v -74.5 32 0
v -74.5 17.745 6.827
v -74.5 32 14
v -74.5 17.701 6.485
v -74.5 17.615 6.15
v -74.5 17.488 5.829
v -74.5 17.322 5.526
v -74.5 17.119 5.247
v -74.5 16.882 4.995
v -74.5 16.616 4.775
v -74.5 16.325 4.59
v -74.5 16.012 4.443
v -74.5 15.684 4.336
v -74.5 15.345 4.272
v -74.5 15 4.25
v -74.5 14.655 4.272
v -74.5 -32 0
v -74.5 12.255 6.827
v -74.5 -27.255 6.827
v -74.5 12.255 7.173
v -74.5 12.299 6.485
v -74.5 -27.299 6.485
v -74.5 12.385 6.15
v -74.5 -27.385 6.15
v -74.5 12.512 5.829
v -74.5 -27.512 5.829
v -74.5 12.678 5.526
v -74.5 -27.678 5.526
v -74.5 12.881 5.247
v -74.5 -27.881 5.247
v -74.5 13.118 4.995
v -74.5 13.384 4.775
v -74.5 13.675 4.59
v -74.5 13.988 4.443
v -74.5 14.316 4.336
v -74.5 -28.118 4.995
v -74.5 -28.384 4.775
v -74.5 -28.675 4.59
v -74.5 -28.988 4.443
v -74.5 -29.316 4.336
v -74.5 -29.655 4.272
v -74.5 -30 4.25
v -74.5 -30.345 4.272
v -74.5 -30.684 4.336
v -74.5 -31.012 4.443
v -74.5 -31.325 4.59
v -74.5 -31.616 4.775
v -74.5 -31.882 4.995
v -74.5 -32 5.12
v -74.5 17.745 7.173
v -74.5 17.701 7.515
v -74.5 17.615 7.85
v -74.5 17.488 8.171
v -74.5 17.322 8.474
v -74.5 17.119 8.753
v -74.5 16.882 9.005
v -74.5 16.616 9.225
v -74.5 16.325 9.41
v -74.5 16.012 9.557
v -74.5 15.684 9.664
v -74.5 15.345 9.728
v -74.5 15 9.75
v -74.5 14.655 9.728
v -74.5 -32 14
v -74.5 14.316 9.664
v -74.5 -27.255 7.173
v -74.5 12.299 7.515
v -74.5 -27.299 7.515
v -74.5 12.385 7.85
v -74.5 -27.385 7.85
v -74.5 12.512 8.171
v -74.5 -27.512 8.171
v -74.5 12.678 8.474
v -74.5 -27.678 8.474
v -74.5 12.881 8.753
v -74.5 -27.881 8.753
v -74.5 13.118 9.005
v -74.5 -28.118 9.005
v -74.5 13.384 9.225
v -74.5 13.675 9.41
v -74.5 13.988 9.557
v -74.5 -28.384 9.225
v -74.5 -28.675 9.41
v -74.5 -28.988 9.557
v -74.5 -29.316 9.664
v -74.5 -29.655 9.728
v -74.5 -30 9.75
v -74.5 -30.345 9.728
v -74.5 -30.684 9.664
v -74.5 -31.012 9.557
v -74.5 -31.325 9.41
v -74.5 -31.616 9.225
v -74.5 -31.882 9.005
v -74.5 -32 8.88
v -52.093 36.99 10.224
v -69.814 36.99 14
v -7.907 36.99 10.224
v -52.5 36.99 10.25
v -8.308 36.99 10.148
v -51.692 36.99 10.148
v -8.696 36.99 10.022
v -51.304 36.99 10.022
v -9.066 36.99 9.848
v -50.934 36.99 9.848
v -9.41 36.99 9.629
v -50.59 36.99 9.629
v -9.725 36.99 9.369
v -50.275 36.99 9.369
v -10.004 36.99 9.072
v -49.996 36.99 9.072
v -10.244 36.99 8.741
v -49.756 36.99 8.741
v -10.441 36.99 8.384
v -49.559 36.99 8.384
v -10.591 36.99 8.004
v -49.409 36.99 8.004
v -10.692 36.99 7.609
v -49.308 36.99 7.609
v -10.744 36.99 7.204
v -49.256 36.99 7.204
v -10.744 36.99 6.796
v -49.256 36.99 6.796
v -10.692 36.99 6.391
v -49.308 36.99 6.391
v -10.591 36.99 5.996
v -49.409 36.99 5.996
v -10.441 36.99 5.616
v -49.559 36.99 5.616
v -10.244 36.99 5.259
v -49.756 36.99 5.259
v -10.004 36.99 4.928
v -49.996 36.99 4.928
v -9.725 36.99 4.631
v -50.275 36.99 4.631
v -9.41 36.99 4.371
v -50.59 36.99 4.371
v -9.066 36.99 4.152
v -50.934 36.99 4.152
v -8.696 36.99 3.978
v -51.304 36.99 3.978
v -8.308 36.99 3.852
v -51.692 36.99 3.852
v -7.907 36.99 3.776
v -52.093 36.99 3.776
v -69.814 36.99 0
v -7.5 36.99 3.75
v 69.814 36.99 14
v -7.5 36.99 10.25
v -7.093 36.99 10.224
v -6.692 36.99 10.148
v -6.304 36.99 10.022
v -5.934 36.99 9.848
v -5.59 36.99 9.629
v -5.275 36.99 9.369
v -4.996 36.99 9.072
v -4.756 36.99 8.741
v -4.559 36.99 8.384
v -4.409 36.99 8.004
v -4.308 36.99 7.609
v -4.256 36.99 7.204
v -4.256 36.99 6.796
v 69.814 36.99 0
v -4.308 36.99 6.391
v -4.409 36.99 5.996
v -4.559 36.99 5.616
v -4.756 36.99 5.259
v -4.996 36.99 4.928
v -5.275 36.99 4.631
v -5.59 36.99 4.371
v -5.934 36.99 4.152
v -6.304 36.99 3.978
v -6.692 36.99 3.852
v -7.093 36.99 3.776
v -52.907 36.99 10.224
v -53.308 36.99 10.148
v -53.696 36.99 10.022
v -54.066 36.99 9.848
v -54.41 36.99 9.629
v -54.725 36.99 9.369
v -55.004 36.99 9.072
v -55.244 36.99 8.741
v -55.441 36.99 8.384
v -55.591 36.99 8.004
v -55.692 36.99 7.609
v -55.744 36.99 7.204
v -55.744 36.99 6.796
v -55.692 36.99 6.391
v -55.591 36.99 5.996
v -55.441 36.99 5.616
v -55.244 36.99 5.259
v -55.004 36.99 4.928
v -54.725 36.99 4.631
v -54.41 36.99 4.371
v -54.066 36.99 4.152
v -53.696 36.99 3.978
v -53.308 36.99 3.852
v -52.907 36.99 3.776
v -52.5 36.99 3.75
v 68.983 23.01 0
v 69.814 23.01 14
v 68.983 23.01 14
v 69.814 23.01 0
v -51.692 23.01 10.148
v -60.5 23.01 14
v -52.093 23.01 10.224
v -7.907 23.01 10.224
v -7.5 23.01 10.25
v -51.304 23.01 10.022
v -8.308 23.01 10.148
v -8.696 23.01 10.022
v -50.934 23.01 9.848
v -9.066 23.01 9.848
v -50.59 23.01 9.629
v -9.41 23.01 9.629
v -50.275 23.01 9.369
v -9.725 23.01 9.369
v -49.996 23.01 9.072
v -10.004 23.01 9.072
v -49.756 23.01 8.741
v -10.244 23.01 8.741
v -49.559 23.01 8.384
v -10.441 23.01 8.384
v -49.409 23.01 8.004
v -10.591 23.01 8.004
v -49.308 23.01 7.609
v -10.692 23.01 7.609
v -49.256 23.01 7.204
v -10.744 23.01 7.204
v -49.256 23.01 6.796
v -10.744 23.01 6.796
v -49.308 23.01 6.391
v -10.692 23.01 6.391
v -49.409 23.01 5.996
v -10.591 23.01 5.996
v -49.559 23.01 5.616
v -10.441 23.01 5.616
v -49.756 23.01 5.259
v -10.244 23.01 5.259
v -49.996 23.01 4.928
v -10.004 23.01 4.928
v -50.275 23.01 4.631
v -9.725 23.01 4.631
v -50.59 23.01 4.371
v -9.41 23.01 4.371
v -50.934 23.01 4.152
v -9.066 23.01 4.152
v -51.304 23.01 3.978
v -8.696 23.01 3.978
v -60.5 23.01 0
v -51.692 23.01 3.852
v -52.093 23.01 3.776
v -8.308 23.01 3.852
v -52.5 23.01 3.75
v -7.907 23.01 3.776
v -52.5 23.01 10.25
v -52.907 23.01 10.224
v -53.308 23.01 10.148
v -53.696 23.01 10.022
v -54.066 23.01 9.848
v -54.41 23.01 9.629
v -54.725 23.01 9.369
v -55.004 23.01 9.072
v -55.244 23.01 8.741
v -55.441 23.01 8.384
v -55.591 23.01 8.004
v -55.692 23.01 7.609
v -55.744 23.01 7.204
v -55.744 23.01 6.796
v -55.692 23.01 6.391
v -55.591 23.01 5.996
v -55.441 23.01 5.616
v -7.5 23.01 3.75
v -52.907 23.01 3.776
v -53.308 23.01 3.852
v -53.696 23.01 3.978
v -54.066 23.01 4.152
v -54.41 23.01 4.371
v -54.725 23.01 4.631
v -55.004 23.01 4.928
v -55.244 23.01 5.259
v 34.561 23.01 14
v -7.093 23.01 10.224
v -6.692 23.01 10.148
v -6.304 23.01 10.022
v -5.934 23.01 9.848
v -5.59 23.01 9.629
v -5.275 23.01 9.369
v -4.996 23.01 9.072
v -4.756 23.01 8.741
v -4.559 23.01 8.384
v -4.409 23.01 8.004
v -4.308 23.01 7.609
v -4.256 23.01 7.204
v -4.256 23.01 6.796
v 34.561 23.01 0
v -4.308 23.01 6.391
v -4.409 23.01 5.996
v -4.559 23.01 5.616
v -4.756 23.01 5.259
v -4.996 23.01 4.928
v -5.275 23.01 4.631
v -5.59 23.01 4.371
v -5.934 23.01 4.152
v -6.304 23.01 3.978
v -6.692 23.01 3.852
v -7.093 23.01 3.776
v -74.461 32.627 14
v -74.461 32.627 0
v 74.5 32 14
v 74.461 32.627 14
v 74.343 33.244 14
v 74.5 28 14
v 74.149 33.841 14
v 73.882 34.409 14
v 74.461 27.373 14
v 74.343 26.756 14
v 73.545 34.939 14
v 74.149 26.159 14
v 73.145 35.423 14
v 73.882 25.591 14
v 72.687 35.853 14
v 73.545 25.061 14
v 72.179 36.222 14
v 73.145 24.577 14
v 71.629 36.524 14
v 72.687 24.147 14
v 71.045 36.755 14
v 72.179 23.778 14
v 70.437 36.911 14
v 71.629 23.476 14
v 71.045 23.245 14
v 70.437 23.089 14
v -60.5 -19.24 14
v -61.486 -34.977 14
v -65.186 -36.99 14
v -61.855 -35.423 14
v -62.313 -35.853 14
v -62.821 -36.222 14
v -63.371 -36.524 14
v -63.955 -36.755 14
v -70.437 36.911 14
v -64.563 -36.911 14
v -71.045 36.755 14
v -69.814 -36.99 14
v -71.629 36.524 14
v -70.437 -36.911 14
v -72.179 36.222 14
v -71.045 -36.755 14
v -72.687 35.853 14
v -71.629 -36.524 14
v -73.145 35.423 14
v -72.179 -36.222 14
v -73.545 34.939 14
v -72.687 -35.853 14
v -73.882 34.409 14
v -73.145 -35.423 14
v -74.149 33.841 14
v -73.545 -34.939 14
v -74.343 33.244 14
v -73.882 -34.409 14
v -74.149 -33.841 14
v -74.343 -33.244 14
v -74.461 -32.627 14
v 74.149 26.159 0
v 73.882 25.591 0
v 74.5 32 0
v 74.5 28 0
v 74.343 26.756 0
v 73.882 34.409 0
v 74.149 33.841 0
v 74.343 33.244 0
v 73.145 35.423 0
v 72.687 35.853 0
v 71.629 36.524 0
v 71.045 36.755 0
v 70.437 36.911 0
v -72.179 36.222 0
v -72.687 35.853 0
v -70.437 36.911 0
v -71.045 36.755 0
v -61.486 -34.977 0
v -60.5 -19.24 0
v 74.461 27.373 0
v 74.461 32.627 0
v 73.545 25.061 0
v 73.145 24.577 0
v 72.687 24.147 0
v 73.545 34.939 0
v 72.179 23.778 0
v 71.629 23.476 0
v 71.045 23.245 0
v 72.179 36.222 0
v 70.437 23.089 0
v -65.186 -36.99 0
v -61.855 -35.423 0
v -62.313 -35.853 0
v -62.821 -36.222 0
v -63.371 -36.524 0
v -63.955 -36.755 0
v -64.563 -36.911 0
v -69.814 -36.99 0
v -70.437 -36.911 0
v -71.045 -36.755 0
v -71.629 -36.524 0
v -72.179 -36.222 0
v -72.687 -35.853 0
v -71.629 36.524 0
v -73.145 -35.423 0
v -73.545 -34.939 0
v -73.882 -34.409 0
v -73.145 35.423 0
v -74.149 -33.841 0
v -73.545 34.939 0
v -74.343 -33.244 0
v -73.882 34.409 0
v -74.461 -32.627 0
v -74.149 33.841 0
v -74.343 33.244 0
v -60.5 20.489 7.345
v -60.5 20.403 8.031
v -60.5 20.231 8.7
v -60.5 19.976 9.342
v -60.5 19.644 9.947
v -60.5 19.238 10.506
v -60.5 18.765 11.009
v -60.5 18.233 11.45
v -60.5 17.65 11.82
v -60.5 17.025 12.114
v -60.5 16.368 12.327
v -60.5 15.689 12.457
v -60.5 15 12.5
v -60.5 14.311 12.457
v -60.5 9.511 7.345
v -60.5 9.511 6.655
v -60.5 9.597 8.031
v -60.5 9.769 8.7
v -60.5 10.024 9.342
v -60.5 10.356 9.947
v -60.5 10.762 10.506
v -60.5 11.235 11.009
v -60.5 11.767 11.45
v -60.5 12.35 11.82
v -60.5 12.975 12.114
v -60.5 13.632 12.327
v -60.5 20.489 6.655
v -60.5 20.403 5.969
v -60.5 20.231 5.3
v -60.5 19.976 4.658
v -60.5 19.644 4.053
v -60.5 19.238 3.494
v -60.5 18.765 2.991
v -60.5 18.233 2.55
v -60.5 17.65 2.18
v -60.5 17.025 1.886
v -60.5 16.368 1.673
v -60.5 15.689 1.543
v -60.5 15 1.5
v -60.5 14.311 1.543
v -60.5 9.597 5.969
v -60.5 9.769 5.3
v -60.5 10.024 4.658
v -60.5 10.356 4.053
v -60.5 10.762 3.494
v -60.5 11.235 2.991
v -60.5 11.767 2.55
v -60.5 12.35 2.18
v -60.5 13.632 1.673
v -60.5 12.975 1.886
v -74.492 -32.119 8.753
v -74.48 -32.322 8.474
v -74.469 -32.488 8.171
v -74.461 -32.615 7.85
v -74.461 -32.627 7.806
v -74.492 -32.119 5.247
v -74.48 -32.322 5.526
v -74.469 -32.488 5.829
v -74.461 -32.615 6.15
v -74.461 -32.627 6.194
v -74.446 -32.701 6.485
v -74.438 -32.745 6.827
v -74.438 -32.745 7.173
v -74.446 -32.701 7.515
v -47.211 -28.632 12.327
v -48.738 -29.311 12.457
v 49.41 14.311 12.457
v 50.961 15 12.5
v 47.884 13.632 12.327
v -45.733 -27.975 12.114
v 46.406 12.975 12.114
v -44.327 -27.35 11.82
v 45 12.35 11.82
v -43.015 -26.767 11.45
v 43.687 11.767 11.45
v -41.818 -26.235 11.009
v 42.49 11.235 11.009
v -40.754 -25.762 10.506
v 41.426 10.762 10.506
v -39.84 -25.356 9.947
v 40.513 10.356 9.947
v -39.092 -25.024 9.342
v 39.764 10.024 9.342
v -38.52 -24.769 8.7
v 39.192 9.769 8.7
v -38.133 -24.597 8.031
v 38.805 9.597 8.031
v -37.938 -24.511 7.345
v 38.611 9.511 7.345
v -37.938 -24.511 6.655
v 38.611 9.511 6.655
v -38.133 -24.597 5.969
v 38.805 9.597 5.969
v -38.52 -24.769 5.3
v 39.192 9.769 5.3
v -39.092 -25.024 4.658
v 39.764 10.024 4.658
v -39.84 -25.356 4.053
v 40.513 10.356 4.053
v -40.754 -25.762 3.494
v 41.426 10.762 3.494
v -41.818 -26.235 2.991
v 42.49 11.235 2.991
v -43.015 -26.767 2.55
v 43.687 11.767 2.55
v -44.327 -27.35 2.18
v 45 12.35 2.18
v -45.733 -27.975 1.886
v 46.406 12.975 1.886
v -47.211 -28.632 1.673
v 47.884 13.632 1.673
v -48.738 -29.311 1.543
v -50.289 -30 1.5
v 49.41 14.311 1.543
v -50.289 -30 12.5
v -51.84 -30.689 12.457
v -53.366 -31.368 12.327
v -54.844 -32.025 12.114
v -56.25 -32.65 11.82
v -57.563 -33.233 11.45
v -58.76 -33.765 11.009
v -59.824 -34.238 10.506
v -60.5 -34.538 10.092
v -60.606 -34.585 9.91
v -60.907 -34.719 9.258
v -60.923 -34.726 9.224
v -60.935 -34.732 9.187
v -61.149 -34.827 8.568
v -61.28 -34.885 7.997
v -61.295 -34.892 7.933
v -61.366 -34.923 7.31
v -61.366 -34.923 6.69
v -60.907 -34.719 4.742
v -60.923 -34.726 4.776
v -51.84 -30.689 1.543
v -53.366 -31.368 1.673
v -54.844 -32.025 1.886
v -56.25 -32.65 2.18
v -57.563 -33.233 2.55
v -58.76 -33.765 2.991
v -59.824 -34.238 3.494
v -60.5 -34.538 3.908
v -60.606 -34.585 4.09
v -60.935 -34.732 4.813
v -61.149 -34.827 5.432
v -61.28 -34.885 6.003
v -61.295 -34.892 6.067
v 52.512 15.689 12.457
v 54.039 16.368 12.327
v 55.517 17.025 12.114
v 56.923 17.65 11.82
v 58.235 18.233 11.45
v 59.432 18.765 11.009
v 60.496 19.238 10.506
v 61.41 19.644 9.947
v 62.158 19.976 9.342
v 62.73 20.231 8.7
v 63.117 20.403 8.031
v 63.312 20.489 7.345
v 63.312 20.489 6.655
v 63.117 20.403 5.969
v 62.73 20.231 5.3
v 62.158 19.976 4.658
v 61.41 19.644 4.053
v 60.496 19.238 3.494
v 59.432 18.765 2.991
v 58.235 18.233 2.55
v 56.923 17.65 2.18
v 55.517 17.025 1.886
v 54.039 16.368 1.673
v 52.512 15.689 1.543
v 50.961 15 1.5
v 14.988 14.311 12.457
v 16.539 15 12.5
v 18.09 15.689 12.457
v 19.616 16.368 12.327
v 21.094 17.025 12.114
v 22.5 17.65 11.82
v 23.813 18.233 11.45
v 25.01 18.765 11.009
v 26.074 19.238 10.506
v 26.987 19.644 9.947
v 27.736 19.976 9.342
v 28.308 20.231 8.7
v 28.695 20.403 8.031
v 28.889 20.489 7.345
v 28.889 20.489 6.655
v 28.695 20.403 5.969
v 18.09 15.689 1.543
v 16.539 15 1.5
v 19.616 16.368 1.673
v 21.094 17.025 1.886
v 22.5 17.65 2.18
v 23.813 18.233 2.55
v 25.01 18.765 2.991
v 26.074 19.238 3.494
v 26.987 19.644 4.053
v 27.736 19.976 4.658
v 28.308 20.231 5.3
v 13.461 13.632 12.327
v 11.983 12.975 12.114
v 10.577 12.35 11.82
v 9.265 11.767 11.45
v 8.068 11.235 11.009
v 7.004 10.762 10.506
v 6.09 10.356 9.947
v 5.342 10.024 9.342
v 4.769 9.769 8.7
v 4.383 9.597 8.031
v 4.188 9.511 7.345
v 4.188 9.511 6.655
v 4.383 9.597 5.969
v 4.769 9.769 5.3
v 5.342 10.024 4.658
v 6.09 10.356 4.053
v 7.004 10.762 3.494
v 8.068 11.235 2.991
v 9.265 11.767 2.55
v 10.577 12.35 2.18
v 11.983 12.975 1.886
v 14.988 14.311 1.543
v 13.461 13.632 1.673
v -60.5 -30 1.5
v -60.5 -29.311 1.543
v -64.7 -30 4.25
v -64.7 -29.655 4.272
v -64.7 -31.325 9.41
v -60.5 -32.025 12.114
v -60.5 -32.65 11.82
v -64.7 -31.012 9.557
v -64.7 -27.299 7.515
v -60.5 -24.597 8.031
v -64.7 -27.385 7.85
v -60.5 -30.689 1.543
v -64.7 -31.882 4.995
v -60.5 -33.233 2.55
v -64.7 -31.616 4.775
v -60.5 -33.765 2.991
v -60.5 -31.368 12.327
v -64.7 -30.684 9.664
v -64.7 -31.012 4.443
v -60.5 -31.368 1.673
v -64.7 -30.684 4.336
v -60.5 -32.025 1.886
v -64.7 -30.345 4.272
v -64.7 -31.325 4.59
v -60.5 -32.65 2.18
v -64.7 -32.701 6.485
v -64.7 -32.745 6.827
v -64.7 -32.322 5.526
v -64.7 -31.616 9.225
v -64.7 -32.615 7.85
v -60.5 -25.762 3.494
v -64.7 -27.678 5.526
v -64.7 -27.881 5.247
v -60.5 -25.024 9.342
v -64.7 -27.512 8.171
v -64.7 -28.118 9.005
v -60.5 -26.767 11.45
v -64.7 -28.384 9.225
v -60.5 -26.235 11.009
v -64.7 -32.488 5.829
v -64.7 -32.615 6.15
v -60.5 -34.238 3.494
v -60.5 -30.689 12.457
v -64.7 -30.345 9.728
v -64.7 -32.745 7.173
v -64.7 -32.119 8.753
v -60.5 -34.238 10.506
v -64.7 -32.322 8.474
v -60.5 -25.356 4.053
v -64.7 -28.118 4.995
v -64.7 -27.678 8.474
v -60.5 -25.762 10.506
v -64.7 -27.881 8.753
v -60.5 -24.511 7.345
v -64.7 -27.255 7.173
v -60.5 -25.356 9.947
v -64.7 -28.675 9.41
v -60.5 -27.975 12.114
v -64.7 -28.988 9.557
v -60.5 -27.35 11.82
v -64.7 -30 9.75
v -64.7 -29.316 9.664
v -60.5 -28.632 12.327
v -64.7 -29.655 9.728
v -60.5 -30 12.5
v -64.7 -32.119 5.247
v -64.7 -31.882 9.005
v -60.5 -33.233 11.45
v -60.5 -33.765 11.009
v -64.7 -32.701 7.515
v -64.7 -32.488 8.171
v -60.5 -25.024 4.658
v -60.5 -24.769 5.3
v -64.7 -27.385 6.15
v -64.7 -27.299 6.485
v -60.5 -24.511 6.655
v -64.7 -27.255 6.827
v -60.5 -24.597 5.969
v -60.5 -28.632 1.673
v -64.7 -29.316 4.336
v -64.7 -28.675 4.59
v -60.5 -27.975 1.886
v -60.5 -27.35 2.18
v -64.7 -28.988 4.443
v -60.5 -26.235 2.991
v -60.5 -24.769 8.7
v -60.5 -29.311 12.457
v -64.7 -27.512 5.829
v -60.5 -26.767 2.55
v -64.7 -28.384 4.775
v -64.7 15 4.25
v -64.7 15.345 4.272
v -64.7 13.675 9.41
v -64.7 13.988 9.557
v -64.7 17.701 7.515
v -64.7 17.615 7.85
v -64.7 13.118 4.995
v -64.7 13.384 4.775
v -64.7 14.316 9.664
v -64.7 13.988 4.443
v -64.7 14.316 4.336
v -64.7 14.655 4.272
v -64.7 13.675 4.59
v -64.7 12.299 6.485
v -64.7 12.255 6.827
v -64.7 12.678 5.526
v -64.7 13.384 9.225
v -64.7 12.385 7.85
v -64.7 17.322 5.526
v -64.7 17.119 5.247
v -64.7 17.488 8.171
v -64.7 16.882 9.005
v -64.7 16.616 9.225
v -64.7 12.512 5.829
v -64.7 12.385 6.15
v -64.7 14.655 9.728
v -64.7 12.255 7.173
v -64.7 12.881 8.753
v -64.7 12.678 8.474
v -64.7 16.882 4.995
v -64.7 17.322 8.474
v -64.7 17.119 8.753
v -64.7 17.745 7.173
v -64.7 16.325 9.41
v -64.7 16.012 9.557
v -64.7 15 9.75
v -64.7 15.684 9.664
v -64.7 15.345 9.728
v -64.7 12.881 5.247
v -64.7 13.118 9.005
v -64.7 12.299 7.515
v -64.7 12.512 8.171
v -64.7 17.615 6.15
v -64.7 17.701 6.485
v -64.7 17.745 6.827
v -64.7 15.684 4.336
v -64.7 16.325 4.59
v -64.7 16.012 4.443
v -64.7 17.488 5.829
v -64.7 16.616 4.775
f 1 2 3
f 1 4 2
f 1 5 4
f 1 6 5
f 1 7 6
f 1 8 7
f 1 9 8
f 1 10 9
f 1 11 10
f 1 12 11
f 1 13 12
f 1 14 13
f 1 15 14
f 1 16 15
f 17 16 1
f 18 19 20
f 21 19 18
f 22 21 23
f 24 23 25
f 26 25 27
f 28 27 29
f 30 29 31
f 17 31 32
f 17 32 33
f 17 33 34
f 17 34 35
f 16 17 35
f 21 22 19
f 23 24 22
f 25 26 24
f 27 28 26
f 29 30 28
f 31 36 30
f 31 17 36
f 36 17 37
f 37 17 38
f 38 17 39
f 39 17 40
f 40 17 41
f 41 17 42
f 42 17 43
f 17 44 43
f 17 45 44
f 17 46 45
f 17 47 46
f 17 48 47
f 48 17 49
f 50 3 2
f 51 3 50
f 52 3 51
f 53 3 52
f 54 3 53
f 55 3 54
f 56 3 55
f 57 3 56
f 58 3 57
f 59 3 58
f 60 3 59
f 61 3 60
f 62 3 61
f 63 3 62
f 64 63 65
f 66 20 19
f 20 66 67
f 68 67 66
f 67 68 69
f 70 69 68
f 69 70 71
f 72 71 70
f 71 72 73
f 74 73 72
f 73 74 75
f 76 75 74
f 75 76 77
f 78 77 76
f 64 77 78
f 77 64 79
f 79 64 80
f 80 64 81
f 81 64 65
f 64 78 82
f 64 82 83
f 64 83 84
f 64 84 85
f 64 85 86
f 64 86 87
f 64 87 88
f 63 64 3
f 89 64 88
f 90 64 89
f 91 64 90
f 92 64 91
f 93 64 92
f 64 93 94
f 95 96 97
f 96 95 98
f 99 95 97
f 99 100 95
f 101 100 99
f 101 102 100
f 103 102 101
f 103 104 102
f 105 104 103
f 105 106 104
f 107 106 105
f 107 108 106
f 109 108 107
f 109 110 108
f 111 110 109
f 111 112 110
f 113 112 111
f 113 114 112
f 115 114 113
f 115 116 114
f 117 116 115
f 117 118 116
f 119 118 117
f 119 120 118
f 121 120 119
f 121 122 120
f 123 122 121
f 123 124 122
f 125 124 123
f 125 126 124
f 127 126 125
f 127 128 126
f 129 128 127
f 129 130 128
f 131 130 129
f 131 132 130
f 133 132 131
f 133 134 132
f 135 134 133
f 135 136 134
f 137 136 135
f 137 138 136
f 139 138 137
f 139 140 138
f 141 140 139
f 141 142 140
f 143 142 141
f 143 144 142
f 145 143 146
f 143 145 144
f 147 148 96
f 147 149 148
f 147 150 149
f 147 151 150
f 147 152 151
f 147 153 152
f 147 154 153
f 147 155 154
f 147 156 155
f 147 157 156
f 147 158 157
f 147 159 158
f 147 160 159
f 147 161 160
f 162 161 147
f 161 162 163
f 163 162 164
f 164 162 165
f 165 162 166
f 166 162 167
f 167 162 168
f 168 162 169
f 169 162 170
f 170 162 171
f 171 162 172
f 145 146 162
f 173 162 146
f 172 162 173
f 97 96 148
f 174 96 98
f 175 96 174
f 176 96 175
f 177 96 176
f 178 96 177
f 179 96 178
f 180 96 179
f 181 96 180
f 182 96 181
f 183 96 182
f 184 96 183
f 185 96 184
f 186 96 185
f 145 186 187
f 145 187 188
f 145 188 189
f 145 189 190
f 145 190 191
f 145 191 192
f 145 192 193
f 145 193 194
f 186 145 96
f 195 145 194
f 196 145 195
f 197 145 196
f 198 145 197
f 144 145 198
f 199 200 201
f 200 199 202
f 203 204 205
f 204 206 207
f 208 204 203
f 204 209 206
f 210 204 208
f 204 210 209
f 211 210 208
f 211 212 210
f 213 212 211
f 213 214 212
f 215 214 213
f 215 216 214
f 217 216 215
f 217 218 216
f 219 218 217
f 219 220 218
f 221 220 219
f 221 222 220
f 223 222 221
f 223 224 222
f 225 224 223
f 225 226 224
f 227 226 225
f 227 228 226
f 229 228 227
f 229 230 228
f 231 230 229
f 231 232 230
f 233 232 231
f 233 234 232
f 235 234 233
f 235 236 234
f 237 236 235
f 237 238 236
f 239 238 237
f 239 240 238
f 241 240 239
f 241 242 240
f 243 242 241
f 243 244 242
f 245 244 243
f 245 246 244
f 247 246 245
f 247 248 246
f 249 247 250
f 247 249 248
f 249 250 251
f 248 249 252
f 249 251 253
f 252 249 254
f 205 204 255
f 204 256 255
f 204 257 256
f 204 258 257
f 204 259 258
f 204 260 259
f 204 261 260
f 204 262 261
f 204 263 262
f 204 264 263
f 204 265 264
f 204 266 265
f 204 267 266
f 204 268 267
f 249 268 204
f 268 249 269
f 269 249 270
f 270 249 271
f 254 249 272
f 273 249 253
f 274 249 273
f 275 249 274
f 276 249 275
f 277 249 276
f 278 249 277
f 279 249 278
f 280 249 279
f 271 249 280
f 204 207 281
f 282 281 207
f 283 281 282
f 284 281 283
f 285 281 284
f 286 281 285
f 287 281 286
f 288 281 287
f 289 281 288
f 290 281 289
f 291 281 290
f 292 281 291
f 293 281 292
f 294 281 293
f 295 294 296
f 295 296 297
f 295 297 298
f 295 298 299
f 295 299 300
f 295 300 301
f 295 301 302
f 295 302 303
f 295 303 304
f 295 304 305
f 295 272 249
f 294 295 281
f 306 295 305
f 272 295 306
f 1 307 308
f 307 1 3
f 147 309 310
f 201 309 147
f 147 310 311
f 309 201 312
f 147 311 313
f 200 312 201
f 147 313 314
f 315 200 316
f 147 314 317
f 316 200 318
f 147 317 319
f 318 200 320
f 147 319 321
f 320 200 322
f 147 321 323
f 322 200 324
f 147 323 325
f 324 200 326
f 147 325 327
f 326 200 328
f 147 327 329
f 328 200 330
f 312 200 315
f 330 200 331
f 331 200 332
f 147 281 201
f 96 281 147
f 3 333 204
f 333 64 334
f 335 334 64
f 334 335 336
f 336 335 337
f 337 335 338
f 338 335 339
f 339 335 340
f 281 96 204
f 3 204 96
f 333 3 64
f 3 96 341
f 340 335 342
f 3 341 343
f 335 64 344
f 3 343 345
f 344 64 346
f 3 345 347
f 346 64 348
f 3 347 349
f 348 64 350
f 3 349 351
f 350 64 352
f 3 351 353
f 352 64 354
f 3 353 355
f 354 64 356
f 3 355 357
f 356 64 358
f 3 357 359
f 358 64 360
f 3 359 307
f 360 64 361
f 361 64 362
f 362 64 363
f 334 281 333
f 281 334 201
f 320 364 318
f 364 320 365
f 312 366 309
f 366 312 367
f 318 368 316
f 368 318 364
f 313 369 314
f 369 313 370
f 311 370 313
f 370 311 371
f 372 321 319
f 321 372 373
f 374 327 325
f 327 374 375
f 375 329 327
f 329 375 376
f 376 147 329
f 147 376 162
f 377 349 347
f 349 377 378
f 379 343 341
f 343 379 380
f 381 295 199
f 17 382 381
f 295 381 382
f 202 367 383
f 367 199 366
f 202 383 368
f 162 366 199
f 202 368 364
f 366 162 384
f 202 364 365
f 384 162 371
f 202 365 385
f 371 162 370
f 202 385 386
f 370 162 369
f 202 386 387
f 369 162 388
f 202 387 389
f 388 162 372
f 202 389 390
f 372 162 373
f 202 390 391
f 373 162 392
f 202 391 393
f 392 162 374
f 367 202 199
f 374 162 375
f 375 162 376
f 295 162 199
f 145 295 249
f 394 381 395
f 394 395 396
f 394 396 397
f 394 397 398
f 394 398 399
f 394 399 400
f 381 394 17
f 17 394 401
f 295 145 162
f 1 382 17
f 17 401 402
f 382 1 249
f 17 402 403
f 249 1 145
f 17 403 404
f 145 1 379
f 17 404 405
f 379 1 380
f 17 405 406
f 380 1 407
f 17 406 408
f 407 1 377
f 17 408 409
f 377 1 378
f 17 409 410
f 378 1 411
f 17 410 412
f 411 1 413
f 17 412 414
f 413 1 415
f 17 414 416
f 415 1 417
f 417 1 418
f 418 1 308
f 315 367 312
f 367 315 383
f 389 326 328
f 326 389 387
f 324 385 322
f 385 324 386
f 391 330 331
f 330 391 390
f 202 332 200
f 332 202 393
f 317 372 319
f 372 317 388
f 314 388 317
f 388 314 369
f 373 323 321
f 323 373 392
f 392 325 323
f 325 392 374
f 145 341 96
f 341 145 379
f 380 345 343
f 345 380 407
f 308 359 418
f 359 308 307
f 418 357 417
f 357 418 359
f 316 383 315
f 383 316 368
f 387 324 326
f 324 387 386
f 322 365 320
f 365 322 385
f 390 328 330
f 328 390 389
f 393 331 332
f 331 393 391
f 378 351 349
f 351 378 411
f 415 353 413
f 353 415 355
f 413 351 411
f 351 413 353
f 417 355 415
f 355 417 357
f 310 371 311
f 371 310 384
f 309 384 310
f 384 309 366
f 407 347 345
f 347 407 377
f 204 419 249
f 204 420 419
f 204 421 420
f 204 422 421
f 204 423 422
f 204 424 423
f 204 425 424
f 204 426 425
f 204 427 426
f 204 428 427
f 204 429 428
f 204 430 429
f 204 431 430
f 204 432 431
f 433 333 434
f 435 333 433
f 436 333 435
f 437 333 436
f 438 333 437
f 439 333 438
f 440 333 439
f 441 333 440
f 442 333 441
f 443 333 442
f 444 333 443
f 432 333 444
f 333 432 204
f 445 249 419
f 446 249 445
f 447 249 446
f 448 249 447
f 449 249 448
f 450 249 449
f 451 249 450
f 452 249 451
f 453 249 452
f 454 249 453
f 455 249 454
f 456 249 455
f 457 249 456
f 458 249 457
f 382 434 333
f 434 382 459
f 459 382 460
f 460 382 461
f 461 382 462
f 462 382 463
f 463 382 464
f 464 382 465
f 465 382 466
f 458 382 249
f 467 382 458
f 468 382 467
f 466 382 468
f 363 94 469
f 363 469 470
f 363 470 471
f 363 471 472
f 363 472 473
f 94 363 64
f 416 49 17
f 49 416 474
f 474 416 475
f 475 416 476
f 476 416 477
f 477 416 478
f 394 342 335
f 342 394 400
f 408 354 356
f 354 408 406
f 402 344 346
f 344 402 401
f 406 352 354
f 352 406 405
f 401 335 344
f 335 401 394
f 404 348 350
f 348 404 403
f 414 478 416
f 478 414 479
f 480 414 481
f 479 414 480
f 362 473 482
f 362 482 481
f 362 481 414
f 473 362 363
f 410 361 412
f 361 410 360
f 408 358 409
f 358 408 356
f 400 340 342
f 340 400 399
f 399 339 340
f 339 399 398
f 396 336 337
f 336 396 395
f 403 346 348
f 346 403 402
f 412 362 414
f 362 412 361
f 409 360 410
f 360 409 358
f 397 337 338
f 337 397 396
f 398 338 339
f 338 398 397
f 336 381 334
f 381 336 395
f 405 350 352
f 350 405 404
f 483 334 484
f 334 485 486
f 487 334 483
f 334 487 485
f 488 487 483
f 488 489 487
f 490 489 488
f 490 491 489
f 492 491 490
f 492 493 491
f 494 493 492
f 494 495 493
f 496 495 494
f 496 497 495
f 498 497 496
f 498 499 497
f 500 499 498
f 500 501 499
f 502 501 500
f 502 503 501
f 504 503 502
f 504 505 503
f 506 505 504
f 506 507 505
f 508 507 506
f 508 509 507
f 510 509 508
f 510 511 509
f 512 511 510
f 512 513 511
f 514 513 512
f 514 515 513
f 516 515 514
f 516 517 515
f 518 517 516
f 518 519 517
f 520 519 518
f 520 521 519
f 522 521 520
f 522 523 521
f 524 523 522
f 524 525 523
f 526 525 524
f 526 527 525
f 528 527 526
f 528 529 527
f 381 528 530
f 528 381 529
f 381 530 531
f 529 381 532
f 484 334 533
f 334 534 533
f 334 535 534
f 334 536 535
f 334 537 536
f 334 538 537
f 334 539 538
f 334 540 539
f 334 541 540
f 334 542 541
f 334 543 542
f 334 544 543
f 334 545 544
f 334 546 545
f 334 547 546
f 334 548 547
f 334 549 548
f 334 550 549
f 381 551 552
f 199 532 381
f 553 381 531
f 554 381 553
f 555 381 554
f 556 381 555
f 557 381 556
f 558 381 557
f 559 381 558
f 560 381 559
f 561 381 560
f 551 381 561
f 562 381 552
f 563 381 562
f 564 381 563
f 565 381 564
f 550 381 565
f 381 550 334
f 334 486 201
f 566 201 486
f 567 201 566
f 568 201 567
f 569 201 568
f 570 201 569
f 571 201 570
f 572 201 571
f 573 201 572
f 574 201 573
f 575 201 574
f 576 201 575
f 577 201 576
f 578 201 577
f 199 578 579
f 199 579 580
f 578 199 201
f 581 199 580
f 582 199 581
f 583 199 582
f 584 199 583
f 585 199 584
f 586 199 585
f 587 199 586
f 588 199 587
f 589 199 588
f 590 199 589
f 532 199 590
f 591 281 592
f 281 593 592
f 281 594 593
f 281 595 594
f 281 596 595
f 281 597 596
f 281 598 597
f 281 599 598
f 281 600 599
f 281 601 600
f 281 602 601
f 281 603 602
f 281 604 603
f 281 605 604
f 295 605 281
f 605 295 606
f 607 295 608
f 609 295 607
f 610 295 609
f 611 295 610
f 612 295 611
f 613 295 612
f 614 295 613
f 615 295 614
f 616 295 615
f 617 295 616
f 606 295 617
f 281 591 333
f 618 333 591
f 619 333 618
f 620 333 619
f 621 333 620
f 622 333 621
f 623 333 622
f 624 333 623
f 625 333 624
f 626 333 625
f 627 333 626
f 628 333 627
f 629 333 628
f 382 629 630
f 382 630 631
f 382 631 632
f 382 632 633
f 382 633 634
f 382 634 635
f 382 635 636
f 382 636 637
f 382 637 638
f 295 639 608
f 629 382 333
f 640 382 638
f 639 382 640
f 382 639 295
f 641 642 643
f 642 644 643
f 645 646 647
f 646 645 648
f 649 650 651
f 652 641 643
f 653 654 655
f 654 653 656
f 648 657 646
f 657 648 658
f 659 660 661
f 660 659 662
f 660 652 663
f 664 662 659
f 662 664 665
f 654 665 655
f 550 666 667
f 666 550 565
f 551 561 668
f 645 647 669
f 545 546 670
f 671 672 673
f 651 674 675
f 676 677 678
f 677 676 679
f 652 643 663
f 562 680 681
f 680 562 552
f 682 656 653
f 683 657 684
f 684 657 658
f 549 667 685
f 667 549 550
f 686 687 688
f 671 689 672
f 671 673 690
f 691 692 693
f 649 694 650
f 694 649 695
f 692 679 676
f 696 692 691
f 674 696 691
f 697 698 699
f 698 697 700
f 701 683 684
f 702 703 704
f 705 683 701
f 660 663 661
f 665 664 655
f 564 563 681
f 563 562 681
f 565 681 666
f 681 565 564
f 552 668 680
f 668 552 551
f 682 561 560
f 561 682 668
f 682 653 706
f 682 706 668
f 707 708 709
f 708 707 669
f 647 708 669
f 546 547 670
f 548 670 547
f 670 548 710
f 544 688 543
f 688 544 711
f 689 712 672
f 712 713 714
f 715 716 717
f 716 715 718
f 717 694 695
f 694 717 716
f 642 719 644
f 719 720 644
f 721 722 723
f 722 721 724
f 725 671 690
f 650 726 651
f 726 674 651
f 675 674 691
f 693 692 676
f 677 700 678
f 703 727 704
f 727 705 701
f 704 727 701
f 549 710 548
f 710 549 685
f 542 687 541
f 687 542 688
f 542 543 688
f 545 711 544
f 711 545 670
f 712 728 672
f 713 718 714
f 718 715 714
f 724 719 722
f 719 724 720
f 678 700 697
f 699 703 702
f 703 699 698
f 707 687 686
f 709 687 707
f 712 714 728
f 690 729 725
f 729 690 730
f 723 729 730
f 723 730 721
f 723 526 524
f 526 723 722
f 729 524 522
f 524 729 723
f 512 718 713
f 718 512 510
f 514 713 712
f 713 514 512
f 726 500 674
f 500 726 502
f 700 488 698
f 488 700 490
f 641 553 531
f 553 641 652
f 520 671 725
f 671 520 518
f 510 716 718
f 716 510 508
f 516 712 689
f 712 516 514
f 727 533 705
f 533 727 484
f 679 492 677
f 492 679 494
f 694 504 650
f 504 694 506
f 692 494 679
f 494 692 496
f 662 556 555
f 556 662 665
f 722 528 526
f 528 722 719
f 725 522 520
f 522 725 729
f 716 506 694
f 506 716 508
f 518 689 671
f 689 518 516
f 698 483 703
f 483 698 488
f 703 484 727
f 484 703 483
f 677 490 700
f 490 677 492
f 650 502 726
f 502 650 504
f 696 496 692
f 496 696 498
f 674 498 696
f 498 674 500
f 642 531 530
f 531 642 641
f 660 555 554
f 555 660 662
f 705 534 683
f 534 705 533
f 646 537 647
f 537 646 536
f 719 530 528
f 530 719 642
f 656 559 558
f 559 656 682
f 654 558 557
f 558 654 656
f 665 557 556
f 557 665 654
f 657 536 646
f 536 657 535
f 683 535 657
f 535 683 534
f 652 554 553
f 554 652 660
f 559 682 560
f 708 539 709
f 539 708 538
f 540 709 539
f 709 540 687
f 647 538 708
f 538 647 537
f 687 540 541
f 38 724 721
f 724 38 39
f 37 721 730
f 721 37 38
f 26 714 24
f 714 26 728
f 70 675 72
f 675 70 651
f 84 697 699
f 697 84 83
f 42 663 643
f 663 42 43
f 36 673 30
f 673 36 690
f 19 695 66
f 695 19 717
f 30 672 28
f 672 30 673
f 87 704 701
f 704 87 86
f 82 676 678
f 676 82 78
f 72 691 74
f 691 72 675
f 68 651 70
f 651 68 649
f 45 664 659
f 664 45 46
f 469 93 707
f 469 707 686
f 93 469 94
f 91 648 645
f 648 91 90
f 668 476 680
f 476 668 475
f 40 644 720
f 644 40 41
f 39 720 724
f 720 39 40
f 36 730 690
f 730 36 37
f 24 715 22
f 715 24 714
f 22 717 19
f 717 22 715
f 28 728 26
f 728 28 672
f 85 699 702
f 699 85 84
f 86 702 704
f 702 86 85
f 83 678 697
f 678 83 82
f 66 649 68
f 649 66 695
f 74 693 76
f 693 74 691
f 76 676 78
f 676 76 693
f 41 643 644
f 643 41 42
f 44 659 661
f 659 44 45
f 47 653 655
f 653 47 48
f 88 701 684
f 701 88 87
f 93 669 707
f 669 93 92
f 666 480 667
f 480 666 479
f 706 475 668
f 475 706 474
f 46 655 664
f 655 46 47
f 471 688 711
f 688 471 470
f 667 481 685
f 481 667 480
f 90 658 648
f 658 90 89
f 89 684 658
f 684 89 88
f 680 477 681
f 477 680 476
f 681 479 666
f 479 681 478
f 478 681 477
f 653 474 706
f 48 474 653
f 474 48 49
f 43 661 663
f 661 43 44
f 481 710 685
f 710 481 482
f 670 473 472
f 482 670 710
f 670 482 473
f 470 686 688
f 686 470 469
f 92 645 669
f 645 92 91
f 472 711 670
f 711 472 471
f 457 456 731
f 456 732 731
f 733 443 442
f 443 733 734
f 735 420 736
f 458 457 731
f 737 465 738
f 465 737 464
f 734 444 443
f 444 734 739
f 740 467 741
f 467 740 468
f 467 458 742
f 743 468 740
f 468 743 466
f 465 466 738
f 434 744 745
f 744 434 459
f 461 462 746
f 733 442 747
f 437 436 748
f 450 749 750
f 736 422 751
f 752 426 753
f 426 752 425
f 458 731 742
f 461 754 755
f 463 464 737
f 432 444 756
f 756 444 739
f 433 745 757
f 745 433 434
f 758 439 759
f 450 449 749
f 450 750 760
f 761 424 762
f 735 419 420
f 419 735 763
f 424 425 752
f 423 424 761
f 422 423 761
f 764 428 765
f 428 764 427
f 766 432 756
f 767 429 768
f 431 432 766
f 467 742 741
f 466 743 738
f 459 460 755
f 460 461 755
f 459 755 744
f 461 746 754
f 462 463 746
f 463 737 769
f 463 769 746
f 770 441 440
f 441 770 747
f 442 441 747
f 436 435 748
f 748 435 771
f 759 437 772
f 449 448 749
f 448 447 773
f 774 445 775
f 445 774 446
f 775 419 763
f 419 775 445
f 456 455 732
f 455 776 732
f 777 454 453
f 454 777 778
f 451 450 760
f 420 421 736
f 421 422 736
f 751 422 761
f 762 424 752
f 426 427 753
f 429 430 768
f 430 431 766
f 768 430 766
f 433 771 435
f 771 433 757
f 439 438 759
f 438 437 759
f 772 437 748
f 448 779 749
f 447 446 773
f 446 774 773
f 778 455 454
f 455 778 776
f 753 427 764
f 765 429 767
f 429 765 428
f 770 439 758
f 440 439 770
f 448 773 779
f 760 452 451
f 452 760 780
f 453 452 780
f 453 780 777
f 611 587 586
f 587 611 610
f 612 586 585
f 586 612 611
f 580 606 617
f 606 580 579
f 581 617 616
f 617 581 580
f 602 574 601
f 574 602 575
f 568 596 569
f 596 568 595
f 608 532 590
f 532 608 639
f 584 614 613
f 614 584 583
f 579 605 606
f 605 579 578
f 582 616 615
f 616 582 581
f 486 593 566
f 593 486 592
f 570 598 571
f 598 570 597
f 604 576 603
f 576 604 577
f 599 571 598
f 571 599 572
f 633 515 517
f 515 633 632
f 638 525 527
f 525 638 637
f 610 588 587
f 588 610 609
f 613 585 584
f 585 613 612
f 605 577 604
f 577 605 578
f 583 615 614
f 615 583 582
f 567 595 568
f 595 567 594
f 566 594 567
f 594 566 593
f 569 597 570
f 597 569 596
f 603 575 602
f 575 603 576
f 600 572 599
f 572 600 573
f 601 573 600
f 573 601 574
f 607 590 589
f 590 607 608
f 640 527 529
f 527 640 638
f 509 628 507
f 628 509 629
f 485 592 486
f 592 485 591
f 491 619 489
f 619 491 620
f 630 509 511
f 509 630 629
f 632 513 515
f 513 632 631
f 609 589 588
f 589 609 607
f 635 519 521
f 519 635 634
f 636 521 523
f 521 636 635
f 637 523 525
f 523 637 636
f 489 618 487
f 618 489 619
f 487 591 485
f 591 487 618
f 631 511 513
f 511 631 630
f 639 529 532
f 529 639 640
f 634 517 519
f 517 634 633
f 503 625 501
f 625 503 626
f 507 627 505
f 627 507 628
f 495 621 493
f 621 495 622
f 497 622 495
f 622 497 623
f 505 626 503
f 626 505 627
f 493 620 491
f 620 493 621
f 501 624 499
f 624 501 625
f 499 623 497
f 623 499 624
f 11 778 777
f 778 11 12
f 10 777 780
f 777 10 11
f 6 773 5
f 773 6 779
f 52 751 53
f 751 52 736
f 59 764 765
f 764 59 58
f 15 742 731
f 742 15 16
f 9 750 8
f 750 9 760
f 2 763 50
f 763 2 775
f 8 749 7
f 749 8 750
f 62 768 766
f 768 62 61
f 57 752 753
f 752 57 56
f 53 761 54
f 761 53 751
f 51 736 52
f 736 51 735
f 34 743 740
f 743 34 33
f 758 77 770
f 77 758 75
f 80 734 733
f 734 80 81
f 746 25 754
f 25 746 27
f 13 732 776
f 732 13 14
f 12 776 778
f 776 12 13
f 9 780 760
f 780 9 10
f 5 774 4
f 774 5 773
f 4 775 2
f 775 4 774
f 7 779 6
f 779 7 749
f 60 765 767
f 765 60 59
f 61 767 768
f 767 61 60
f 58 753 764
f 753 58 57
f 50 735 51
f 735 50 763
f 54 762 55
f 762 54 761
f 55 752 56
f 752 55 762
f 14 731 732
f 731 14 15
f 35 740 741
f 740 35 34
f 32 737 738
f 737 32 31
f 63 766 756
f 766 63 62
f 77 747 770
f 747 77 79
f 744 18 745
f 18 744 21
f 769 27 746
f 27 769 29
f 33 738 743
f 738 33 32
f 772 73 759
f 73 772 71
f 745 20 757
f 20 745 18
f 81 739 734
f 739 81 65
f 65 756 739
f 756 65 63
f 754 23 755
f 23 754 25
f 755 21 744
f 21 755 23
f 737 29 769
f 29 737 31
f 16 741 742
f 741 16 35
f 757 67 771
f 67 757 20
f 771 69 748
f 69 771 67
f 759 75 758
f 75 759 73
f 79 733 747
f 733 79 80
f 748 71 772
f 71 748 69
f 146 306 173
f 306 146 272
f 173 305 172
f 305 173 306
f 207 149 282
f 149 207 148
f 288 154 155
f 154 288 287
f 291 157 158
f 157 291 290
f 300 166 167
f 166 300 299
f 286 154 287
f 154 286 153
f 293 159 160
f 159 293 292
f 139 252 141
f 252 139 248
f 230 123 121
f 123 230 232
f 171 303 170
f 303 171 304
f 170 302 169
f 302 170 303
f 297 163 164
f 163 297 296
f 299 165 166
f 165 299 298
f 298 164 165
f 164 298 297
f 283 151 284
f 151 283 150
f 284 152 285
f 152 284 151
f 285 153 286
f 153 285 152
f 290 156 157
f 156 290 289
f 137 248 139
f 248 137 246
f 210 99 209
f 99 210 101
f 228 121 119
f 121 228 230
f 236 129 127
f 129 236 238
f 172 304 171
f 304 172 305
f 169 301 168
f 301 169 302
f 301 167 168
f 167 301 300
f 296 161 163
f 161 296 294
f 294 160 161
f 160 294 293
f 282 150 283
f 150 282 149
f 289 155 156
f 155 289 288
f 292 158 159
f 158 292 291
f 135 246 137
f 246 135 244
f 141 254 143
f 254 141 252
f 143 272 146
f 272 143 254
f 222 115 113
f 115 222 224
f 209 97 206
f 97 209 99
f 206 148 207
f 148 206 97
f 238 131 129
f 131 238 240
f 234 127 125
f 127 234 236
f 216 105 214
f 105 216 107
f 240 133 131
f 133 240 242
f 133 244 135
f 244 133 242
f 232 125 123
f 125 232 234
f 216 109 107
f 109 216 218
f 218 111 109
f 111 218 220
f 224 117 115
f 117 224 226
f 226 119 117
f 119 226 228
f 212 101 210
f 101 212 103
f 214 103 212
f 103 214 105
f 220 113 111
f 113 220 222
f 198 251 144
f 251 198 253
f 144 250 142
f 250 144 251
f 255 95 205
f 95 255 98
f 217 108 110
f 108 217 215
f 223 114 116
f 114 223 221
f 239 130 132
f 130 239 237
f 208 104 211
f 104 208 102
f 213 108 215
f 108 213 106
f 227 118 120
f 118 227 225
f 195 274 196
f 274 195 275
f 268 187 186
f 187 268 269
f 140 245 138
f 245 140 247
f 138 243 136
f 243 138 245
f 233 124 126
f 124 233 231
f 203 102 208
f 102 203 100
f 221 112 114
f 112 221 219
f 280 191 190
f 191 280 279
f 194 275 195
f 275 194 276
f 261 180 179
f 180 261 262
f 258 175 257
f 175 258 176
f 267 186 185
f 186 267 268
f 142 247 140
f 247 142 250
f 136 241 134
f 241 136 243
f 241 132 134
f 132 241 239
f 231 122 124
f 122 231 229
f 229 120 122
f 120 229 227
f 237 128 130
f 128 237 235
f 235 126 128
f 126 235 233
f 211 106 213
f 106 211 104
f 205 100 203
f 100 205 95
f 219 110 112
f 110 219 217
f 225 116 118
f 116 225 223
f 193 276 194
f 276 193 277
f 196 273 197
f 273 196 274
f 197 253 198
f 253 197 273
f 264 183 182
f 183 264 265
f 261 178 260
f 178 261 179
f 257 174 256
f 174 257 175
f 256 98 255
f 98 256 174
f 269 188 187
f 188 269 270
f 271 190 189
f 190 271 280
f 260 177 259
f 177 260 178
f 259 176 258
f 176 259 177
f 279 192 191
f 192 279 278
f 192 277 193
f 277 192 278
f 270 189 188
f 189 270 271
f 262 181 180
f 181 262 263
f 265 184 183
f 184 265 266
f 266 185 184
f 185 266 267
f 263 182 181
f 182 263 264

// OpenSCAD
$fn = 50;


difference() {
	union() {
		translate(v = [0, 30.0000000000, 0]) {
			hull() {
				translate(v = [-69.5000000000, 2.0000000000, 0]) {
					cylinder(h = 14, r = 5);
				}
				translate(v = [69.5000000000, 2.0000000000, 0]) {
					cylinder(h = 14, r = 5);
				}
				translate(v = [-69.5000000000, -2.0000000000, 0]) {
					cylinder(h = 14, r = 5);
				}
				translate(v = [69.5000000000, -2.0000000000, 0]) {
					cylinder(h = 14, r = 5);
				}
			}
		}
		translate(v = [-67.5000000000, 0, 0]) {
			hull() {
				translate(v = [-2.0000000000, 32.0000000000, 0]) {
					cylinder(h = 14, r = 5);
				}
				translate(v = [2.0000000000, 32.0000000000, 0]) {
					cylinder(h = 14, r = 5);
				}
				translate(v = [-2.0000000000, -32.0000000000, 0]) {
					cylinder(h = 14, r = 5);
				}
				translate(v = [2.0000000000, -32.0000000000, 0]) {
					cylinder(h = 14, r = 5);
				}
			}
		}
		rotate(a = [0, 0, 23.9624889746]) {
			hull() {
				translate(v = [-73.3664335135, 2.0000000000, 0]) {
					cylinder(h = 14, r = 5);
				}
				translate(v = [73.3664335135, 2.0000000000, 0]) {
					cylinder(h = 14, r = 5);
				}
				translate(v = [-73.3664335135, -2.0000000000, 0]) {
					cylinder(h = 14, r = 5);
				}
				translate(v = [73.3664335135, -2.0000000000, 0]) {
					cylinder(h = 14, r = 5);
				}
			}
		}
	}
	union() {
		translate(v = [-60.5000000000, -30.0000000000, 7.0000000000]) {
			rotate(a = [0, 90, 0]) {
				difference() {
					union() {
						#translate(v = [0, 0, -14.0000000000]) {
							cylinder(h = 14, r = 2.2500000000);
						}
						#translate(v = [0, 0, -4.2000000000]) {
							cylinder(h = 4.2000000000, r1 = 2.7500000000, r2 = 5.5000000000);
						}
						#cylinder(h = 250, r = 5.5000000000);
						#translate(v = [0, 0, -14.0000000000]) {
							cylinder(h = 14, r = 2.7500000000);
						}
						#translate(v = [0, 0, -14.0000000000]) {
							cylinder(h = 14, r = 2.2500000000);
						}
					}
					union();
				}
			}
		}
		translate(v = [-60.5000000000, 15.0000000000, 7.0000000000]) {
			rotate(a = [0, 90, 0]) {
				difference() {
					union() {
						#translate(v = [0, 0, -14.0000000000]) {
							cylinder(h = 14, r = 2.2500000000);
						}
						#translate(v = [0, 0, -4.2000000000]) {
							cylinder(h = 4.2000000000, r1 = 2.7500000000, r2 = 5.5000000000);
						}
						#cylinder(h = 250, r = 5.5000000000);
						#translate(v = [0, 0, -14.0000000000]) {
							cylinder(h = 14, r = 2.7500000000);
						}
						#translate(v = [0, 0, -14.0000000000]) {
							cylinder(h = 14, r = 2.2500000000);
						}
					}
					union();
				}
			}
		}
		#translate(v = [-7.5000000000, 37.5000000000, 7.0000000000]) {
			rotate(a = [0, 90, -90]) {
				cylinder(h = 30, r = 3.2500000000);
			}
		}
		#translate(v = [-52.5000000000, 37.5000000000, 7.0000000000]) {
			rotate(a = [0, 90, -90]) {
				cylinder(h = 30, r = 3.2500000000);
			}
		}
	}
}
